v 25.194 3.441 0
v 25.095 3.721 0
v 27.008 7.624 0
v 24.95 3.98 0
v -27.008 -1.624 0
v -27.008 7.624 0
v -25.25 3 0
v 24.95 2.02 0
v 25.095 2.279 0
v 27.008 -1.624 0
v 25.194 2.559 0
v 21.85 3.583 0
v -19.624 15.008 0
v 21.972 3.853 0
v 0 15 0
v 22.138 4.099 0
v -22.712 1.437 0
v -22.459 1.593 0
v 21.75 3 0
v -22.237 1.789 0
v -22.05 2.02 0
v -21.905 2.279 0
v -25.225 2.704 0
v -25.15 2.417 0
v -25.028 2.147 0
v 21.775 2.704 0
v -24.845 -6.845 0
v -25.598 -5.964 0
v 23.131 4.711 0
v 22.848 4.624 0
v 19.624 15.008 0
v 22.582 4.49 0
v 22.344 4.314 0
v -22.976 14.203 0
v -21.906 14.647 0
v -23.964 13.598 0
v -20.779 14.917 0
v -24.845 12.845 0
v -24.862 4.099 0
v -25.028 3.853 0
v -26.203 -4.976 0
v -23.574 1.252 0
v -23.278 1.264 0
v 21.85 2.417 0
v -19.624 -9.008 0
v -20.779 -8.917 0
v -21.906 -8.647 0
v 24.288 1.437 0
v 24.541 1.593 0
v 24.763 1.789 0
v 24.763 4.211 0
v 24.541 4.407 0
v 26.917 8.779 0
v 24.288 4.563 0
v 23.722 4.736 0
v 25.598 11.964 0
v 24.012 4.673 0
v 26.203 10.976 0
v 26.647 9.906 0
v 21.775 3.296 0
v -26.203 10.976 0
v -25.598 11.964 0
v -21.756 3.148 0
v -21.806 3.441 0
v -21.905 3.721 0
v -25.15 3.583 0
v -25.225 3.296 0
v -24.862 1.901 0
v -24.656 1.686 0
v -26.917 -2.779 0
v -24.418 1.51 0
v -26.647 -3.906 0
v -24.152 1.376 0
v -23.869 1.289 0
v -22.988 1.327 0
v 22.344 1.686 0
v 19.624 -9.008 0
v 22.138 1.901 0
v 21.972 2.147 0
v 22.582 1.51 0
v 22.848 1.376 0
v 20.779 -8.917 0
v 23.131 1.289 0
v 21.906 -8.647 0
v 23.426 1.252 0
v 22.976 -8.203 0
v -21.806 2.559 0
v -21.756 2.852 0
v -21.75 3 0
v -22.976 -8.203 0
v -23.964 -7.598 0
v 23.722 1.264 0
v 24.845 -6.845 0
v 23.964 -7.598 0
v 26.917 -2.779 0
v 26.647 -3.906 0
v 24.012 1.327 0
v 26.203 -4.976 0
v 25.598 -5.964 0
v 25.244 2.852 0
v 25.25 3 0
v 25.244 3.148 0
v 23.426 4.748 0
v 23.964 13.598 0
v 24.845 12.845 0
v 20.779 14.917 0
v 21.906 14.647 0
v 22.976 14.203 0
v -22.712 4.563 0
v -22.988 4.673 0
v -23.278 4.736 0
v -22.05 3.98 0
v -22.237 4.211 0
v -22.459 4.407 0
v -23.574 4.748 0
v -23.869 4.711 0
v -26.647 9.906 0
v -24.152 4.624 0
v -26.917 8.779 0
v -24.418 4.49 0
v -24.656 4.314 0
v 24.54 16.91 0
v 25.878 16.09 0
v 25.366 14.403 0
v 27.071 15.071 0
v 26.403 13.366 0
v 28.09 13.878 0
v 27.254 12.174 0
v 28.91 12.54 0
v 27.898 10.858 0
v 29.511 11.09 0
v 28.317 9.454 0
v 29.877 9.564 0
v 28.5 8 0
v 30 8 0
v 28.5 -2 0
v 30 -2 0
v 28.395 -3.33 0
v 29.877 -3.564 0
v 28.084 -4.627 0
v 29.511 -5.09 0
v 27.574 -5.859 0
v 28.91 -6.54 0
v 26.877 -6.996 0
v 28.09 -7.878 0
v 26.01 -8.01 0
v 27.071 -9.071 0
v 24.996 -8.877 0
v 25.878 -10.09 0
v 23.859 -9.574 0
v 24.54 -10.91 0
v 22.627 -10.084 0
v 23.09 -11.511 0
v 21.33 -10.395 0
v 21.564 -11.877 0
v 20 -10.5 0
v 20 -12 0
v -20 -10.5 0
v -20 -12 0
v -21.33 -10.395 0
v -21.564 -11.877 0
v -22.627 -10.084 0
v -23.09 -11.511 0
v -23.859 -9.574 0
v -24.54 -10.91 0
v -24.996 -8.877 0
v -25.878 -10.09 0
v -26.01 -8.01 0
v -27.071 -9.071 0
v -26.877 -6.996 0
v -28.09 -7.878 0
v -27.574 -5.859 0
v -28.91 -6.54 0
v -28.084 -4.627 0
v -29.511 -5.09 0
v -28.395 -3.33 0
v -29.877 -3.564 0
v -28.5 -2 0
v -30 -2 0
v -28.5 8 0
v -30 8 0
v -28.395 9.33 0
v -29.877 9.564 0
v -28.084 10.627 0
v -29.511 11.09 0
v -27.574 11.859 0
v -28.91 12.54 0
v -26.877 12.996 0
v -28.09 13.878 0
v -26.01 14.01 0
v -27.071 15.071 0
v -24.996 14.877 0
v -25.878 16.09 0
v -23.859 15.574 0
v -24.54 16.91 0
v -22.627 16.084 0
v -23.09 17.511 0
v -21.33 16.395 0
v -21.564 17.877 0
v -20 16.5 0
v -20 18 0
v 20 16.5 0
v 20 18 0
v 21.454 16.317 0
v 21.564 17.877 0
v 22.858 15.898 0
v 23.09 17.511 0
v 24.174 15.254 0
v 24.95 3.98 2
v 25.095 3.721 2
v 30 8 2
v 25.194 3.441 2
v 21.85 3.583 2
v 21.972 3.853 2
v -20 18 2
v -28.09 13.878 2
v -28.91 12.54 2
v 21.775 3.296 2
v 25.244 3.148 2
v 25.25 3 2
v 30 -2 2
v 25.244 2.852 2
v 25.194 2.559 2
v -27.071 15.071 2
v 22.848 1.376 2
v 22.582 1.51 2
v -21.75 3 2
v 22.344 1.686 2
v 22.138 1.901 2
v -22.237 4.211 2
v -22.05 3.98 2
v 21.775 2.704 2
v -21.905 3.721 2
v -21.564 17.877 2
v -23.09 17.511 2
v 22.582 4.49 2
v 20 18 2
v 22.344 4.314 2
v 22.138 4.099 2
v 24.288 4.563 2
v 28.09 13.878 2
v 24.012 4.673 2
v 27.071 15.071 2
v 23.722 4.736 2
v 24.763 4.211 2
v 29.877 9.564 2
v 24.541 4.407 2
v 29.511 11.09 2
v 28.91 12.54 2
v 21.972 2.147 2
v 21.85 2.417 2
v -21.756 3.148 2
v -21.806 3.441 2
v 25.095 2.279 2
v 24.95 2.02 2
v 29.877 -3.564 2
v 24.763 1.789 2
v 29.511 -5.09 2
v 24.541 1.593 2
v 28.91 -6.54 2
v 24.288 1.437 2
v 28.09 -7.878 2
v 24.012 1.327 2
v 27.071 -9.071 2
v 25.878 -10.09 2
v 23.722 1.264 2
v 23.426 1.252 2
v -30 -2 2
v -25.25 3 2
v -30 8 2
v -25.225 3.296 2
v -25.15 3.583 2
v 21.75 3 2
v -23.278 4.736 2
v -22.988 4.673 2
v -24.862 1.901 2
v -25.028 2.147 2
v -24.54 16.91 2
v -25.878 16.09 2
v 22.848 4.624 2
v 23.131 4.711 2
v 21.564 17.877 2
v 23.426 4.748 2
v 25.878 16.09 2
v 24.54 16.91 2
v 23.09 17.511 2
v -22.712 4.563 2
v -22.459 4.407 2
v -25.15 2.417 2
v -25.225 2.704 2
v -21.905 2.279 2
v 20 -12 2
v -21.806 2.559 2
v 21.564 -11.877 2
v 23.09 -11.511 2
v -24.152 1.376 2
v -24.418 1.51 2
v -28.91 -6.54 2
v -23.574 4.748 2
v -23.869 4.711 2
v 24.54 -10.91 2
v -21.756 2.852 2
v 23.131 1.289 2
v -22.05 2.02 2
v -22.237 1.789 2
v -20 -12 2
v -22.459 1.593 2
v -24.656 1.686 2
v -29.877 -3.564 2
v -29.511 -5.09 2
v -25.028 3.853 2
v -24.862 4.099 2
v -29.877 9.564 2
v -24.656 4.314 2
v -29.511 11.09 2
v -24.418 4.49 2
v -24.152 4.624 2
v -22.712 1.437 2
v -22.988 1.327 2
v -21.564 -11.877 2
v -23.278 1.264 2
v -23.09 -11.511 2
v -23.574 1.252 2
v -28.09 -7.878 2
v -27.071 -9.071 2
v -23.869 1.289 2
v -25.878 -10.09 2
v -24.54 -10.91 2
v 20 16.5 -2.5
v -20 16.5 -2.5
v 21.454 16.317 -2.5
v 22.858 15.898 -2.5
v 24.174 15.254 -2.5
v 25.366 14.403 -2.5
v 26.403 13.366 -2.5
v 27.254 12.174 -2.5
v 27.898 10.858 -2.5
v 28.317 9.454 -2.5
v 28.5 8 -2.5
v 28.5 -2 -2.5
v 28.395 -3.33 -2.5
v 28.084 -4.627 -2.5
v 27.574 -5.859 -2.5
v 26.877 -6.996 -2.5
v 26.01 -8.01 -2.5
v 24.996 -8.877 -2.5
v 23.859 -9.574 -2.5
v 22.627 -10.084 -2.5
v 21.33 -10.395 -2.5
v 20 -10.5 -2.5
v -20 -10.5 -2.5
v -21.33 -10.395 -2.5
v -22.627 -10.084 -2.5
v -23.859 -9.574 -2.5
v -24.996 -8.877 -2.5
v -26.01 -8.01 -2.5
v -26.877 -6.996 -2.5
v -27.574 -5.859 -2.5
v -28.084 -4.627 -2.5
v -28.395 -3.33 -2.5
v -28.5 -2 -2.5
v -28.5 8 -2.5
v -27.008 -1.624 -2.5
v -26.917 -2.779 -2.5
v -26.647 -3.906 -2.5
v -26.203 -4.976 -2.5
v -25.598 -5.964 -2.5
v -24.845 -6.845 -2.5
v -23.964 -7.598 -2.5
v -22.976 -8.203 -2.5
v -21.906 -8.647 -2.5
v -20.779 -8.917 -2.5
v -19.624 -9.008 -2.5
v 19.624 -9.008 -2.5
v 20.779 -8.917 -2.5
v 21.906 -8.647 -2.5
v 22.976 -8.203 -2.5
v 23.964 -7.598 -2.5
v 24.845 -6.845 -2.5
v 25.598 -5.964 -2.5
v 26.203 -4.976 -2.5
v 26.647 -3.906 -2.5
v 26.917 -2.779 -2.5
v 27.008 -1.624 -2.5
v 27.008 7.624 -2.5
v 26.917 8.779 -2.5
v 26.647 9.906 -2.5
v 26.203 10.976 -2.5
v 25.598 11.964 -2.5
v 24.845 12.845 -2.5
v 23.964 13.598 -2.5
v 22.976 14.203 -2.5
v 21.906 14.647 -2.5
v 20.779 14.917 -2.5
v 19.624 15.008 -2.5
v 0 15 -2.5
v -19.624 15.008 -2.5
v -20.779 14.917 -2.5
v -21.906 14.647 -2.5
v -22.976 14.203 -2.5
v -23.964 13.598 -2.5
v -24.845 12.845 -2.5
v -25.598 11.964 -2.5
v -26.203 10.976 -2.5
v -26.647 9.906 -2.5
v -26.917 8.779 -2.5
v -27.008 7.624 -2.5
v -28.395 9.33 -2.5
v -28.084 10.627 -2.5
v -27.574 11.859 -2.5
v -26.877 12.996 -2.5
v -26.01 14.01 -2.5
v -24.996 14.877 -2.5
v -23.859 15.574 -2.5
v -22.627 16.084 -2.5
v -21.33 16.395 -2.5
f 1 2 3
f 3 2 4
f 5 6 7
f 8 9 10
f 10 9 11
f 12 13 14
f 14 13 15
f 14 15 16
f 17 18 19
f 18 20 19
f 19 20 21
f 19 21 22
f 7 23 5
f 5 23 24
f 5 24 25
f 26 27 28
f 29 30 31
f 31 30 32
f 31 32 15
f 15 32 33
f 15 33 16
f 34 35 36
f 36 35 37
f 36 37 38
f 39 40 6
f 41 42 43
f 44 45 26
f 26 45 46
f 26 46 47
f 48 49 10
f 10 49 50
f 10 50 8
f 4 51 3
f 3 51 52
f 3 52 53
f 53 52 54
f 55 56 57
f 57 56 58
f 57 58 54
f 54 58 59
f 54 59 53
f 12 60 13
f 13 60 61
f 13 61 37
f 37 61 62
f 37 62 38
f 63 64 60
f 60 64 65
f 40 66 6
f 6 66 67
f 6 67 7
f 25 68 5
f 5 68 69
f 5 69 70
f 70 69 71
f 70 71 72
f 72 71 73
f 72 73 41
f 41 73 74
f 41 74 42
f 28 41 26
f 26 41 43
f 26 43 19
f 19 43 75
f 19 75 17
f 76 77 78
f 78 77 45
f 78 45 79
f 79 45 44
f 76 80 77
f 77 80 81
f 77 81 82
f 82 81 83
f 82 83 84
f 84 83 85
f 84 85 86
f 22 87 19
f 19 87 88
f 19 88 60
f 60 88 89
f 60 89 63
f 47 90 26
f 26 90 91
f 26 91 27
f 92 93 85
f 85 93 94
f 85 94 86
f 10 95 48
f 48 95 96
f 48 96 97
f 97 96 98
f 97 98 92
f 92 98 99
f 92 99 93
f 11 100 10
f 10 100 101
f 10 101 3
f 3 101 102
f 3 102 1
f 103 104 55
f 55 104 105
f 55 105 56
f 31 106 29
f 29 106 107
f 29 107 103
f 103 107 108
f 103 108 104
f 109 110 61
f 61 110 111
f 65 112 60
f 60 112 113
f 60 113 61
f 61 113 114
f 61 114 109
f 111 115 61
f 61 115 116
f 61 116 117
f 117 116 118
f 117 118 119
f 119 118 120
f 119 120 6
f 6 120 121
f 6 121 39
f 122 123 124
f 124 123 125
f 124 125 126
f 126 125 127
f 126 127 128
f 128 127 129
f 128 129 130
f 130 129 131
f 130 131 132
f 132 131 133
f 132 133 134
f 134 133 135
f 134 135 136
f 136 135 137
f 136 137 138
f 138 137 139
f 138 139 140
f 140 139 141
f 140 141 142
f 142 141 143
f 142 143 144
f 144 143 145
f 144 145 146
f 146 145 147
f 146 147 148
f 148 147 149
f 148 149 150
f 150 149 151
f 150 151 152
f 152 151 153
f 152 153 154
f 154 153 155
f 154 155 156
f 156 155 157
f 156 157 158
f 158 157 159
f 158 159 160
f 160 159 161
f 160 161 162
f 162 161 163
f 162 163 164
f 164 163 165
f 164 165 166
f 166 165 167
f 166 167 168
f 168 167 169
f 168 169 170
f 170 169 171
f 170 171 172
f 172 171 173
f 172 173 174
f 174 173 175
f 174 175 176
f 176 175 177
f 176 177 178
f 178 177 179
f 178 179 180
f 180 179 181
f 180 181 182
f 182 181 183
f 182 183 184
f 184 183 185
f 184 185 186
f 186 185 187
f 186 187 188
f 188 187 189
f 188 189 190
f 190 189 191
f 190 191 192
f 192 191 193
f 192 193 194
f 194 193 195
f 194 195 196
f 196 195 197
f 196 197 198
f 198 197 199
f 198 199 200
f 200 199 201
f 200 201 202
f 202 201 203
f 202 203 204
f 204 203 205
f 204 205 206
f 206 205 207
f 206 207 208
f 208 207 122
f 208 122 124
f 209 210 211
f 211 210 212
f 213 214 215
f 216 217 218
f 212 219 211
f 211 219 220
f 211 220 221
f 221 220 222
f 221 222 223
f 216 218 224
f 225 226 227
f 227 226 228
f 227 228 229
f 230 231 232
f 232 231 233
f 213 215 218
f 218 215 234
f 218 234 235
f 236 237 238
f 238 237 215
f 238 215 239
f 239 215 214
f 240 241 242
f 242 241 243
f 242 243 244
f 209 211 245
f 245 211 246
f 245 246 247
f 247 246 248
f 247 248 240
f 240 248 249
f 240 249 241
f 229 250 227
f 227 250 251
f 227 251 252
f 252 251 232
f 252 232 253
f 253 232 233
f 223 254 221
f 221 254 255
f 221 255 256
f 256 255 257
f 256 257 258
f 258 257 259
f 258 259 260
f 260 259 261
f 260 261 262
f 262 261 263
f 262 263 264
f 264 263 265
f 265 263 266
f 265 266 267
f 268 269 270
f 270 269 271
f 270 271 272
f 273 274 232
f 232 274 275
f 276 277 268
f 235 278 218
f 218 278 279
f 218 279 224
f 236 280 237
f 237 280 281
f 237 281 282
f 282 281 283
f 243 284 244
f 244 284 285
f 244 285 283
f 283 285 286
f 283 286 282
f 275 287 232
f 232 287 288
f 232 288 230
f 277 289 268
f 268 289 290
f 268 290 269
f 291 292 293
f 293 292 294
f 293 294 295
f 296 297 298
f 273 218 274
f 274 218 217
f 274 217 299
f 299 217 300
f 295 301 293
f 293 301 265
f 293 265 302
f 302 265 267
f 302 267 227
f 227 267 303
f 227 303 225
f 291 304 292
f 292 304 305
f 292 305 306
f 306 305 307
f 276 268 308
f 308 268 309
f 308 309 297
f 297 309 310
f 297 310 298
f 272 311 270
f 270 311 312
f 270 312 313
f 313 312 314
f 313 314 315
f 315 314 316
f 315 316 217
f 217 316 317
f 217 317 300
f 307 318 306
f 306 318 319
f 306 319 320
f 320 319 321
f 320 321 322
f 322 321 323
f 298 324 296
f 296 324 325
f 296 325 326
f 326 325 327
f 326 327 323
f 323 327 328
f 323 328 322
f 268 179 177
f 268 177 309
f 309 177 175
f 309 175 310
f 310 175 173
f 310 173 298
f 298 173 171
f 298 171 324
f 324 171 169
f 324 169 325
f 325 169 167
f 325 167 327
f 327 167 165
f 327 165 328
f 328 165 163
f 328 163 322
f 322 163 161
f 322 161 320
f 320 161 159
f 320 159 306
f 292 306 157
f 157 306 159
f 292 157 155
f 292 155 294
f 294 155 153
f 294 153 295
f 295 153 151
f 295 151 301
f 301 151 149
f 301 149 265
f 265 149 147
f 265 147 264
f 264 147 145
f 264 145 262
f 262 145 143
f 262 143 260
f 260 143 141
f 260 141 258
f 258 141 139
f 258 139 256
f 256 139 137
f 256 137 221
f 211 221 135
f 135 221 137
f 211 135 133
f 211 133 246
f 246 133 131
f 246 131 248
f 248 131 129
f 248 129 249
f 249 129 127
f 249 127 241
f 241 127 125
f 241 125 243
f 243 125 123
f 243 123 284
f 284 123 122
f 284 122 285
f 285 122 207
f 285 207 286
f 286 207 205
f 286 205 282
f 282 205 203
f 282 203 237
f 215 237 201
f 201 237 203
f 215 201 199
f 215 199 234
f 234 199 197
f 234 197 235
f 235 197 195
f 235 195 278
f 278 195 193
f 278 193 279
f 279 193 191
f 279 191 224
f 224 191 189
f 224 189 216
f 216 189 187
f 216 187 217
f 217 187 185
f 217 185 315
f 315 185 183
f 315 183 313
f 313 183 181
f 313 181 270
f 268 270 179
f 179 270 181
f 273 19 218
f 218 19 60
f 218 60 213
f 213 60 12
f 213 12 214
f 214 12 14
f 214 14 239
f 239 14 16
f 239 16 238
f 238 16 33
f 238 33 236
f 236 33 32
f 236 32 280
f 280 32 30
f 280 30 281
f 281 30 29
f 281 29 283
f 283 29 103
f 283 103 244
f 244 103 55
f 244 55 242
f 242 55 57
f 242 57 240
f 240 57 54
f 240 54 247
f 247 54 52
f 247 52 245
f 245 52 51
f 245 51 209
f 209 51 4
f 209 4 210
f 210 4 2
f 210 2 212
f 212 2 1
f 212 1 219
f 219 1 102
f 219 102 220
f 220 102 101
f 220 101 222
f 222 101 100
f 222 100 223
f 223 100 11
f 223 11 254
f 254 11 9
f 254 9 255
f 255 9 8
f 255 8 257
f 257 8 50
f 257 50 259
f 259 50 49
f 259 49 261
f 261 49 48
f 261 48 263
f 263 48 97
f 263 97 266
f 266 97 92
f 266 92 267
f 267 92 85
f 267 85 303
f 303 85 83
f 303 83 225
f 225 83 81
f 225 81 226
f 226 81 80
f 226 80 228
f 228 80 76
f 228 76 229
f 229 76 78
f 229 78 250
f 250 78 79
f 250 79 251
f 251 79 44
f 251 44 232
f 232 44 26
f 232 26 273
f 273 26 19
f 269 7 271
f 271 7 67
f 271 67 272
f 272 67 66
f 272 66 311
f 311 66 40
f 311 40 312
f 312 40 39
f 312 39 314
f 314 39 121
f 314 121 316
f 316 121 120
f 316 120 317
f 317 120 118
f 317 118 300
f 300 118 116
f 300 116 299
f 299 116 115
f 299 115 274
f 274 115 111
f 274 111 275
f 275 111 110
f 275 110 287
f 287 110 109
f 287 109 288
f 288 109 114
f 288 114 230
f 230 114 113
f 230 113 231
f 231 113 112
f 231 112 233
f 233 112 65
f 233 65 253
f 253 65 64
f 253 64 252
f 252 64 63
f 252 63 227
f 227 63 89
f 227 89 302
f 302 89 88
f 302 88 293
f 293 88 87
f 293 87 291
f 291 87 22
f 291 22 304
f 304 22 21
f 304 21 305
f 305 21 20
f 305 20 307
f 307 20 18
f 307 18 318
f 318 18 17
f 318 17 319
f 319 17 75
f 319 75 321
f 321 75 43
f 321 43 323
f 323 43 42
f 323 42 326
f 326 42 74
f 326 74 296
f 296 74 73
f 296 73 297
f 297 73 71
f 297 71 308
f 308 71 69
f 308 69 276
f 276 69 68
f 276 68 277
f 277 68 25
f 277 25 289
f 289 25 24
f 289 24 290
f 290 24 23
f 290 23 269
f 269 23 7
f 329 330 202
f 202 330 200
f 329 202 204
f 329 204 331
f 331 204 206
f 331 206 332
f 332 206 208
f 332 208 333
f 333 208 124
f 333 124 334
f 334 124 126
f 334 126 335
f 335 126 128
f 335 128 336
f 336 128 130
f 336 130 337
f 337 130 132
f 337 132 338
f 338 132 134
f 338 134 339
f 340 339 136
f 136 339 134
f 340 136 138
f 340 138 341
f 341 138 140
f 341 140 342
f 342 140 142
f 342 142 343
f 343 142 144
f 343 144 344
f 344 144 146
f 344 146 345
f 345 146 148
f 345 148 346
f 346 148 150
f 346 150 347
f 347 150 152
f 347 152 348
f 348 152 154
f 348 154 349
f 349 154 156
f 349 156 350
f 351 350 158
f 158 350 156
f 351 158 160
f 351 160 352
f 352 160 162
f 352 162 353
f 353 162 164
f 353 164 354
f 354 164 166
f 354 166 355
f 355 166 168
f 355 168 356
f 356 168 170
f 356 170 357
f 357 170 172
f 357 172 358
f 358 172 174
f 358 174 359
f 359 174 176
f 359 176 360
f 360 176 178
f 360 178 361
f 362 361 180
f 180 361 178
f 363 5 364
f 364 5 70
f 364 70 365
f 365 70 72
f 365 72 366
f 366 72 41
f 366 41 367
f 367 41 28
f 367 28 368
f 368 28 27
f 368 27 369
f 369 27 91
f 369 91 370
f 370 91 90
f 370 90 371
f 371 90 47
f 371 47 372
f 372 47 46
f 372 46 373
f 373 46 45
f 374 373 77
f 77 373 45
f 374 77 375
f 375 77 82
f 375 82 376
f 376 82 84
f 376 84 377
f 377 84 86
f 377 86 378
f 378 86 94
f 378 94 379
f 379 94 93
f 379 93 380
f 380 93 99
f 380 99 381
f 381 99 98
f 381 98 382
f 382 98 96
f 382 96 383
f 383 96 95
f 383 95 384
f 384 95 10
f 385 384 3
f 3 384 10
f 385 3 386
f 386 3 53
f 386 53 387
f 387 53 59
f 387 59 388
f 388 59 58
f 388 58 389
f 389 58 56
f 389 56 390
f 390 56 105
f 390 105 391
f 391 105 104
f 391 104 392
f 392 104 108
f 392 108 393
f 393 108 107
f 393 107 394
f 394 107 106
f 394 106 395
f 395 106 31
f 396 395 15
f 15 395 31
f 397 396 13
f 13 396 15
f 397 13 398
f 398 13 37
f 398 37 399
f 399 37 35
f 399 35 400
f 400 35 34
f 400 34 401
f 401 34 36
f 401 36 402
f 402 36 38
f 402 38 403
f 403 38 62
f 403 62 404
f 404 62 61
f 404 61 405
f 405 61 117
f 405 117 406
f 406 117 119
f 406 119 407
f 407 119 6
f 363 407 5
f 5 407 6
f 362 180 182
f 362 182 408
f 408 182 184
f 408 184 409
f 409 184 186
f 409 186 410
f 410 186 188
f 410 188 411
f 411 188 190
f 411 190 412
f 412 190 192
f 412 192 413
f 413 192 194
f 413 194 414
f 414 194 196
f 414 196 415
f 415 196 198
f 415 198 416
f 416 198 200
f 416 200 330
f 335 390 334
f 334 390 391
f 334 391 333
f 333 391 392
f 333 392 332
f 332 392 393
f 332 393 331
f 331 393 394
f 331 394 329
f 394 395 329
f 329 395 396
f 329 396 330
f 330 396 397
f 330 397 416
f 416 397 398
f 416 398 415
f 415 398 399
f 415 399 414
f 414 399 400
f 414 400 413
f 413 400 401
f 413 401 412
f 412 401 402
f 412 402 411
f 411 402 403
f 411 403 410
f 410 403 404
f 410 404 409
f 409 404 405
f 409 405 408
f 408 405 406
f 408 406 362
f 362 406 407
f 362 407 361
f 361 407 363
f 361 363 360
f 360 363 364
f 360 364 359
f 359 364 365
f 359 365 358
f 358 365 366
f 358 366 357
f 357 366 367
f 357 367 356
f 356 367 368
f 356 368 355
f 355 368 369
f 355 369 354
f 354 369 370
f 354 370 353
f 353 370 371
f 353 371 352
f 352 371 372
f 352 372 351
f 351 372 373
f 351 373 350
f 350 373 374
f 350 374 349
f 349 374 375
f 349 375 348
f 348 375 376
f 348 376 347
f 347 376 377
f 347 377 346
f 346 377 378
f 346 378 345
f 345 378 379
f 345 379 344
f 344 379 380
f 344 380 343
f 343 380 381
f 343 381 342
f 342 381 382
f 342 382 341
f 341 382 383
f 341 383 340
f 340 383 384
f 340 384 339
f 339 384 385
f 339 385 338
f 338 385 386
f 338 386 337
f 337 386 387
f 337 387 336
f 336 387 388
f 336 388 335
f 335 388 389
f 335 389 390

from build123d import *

# Parameters (mm, degrees)
SKETCH_9_R      = 1.75
EXTRUDE_3_DEPTH = 2
EXTRUDE_START   = -2.5
EXTRUDE_4_DEPTH = 2.5


# Read off the part's stored shape, not the designer's step: Бобышка-Вытянуть4
with BuildPart() as part:
    # Эскиз9 → Бобышка-Вытянуть3 (new body)
    with BuildSketch(Plane.XY):
        with BuildLine():
            Line((-30, 8), (-30, -2))
            ThreePointArc((-30, -2), (-27.071067812, -9.071067812), (-20, -12))
            Line((-20, -12), (20, -12))
            ThreePointArc((20, -12), (27.071067812, -9.071067812), (30, -2))
            Line((30, -2), (30, 8))
            ThreePointArc((30, 8), (27.071067812, 15.071067812), (20, 18))
            Line((20, 18), (-20, 18))
            ThreePointArc((-20, 18), (-27.071067812, 15.071067812), (-30, 8))
        make_face()
        with Locations((23.5, 3)):
            Circle(SKETCH_9_R, mode=Mode.SUBTRACT)
        with Locations((-23.5, 3)):
            Circle(SKETCH_9_R, mode=Mode.SUBTRACT)
    extrude(amount=EXTRUDE_3_DEPTH)

    # Бобышка-Вытянуть4 outline → Бобышка-Вытянуть4 (add)
    with BuildSketch(Plane.XY.offset(EXTRUDE_START)):
        with BuildLine():
            Line((20, 16.5), (-20, 16.5))
            ThreePointArc((-20, 16.5), (-26.01040764, 14.01040764), (-28.5, 8))
            Line((-28.5, 8), (-28.5, -2))
            ThreePointArc((-28.5, -2), (-26.01040764, -8.01040764), (-20, -10.5))
            Line((-20, -10.5), (20, -10.5))
            ThreePointArc((20, -10.5), (26.01040764, -8.01040764), (28.5, -2))
            Line((28.5, -2), (28.5, 8))
            ThreePointArc((28.5, 8), (25.905867423, 13.905867423), (20, 16.5))
        make_face()
        with BuildLine():
            ThreePointArc((-19.623843683, -9.007966855), (-24.845207251, -6.845207251), (-27.007966855, -1.623843683))
            Line((-27.007966855, -1.623843683), (-27.007966855, 7.623843683))
            ThreePointArc((-27.007966855, 7.623843683), (-24.845207251, 12.845207251), (-19.623843683, 15.007966855))
            Line((-19.623843683, 15.007966855), (0, 15))
            Line((0, 15), (19.623843683, 15.007966855))
            ThreePointArc((19.623843683, 15.007966855), (24.845207251, 12.845207251), (27.007966855, 7.623843683))
            Line((27.007966855, 7.623843683), (27.007966855, -1.623843683))
            ThreePointArc((27.007966855, -1.623843683), (24.845207251, -6.845207251), (19.623843683, -9.007966855))
            Line((19.623843683, -9.007966855), (-19.623843683, -9.007966855))
        make_face(mode=Mode.SUBTRACT)
    extrude(amount=EXTRUDE_4_DEPTH)


solid = part.part
